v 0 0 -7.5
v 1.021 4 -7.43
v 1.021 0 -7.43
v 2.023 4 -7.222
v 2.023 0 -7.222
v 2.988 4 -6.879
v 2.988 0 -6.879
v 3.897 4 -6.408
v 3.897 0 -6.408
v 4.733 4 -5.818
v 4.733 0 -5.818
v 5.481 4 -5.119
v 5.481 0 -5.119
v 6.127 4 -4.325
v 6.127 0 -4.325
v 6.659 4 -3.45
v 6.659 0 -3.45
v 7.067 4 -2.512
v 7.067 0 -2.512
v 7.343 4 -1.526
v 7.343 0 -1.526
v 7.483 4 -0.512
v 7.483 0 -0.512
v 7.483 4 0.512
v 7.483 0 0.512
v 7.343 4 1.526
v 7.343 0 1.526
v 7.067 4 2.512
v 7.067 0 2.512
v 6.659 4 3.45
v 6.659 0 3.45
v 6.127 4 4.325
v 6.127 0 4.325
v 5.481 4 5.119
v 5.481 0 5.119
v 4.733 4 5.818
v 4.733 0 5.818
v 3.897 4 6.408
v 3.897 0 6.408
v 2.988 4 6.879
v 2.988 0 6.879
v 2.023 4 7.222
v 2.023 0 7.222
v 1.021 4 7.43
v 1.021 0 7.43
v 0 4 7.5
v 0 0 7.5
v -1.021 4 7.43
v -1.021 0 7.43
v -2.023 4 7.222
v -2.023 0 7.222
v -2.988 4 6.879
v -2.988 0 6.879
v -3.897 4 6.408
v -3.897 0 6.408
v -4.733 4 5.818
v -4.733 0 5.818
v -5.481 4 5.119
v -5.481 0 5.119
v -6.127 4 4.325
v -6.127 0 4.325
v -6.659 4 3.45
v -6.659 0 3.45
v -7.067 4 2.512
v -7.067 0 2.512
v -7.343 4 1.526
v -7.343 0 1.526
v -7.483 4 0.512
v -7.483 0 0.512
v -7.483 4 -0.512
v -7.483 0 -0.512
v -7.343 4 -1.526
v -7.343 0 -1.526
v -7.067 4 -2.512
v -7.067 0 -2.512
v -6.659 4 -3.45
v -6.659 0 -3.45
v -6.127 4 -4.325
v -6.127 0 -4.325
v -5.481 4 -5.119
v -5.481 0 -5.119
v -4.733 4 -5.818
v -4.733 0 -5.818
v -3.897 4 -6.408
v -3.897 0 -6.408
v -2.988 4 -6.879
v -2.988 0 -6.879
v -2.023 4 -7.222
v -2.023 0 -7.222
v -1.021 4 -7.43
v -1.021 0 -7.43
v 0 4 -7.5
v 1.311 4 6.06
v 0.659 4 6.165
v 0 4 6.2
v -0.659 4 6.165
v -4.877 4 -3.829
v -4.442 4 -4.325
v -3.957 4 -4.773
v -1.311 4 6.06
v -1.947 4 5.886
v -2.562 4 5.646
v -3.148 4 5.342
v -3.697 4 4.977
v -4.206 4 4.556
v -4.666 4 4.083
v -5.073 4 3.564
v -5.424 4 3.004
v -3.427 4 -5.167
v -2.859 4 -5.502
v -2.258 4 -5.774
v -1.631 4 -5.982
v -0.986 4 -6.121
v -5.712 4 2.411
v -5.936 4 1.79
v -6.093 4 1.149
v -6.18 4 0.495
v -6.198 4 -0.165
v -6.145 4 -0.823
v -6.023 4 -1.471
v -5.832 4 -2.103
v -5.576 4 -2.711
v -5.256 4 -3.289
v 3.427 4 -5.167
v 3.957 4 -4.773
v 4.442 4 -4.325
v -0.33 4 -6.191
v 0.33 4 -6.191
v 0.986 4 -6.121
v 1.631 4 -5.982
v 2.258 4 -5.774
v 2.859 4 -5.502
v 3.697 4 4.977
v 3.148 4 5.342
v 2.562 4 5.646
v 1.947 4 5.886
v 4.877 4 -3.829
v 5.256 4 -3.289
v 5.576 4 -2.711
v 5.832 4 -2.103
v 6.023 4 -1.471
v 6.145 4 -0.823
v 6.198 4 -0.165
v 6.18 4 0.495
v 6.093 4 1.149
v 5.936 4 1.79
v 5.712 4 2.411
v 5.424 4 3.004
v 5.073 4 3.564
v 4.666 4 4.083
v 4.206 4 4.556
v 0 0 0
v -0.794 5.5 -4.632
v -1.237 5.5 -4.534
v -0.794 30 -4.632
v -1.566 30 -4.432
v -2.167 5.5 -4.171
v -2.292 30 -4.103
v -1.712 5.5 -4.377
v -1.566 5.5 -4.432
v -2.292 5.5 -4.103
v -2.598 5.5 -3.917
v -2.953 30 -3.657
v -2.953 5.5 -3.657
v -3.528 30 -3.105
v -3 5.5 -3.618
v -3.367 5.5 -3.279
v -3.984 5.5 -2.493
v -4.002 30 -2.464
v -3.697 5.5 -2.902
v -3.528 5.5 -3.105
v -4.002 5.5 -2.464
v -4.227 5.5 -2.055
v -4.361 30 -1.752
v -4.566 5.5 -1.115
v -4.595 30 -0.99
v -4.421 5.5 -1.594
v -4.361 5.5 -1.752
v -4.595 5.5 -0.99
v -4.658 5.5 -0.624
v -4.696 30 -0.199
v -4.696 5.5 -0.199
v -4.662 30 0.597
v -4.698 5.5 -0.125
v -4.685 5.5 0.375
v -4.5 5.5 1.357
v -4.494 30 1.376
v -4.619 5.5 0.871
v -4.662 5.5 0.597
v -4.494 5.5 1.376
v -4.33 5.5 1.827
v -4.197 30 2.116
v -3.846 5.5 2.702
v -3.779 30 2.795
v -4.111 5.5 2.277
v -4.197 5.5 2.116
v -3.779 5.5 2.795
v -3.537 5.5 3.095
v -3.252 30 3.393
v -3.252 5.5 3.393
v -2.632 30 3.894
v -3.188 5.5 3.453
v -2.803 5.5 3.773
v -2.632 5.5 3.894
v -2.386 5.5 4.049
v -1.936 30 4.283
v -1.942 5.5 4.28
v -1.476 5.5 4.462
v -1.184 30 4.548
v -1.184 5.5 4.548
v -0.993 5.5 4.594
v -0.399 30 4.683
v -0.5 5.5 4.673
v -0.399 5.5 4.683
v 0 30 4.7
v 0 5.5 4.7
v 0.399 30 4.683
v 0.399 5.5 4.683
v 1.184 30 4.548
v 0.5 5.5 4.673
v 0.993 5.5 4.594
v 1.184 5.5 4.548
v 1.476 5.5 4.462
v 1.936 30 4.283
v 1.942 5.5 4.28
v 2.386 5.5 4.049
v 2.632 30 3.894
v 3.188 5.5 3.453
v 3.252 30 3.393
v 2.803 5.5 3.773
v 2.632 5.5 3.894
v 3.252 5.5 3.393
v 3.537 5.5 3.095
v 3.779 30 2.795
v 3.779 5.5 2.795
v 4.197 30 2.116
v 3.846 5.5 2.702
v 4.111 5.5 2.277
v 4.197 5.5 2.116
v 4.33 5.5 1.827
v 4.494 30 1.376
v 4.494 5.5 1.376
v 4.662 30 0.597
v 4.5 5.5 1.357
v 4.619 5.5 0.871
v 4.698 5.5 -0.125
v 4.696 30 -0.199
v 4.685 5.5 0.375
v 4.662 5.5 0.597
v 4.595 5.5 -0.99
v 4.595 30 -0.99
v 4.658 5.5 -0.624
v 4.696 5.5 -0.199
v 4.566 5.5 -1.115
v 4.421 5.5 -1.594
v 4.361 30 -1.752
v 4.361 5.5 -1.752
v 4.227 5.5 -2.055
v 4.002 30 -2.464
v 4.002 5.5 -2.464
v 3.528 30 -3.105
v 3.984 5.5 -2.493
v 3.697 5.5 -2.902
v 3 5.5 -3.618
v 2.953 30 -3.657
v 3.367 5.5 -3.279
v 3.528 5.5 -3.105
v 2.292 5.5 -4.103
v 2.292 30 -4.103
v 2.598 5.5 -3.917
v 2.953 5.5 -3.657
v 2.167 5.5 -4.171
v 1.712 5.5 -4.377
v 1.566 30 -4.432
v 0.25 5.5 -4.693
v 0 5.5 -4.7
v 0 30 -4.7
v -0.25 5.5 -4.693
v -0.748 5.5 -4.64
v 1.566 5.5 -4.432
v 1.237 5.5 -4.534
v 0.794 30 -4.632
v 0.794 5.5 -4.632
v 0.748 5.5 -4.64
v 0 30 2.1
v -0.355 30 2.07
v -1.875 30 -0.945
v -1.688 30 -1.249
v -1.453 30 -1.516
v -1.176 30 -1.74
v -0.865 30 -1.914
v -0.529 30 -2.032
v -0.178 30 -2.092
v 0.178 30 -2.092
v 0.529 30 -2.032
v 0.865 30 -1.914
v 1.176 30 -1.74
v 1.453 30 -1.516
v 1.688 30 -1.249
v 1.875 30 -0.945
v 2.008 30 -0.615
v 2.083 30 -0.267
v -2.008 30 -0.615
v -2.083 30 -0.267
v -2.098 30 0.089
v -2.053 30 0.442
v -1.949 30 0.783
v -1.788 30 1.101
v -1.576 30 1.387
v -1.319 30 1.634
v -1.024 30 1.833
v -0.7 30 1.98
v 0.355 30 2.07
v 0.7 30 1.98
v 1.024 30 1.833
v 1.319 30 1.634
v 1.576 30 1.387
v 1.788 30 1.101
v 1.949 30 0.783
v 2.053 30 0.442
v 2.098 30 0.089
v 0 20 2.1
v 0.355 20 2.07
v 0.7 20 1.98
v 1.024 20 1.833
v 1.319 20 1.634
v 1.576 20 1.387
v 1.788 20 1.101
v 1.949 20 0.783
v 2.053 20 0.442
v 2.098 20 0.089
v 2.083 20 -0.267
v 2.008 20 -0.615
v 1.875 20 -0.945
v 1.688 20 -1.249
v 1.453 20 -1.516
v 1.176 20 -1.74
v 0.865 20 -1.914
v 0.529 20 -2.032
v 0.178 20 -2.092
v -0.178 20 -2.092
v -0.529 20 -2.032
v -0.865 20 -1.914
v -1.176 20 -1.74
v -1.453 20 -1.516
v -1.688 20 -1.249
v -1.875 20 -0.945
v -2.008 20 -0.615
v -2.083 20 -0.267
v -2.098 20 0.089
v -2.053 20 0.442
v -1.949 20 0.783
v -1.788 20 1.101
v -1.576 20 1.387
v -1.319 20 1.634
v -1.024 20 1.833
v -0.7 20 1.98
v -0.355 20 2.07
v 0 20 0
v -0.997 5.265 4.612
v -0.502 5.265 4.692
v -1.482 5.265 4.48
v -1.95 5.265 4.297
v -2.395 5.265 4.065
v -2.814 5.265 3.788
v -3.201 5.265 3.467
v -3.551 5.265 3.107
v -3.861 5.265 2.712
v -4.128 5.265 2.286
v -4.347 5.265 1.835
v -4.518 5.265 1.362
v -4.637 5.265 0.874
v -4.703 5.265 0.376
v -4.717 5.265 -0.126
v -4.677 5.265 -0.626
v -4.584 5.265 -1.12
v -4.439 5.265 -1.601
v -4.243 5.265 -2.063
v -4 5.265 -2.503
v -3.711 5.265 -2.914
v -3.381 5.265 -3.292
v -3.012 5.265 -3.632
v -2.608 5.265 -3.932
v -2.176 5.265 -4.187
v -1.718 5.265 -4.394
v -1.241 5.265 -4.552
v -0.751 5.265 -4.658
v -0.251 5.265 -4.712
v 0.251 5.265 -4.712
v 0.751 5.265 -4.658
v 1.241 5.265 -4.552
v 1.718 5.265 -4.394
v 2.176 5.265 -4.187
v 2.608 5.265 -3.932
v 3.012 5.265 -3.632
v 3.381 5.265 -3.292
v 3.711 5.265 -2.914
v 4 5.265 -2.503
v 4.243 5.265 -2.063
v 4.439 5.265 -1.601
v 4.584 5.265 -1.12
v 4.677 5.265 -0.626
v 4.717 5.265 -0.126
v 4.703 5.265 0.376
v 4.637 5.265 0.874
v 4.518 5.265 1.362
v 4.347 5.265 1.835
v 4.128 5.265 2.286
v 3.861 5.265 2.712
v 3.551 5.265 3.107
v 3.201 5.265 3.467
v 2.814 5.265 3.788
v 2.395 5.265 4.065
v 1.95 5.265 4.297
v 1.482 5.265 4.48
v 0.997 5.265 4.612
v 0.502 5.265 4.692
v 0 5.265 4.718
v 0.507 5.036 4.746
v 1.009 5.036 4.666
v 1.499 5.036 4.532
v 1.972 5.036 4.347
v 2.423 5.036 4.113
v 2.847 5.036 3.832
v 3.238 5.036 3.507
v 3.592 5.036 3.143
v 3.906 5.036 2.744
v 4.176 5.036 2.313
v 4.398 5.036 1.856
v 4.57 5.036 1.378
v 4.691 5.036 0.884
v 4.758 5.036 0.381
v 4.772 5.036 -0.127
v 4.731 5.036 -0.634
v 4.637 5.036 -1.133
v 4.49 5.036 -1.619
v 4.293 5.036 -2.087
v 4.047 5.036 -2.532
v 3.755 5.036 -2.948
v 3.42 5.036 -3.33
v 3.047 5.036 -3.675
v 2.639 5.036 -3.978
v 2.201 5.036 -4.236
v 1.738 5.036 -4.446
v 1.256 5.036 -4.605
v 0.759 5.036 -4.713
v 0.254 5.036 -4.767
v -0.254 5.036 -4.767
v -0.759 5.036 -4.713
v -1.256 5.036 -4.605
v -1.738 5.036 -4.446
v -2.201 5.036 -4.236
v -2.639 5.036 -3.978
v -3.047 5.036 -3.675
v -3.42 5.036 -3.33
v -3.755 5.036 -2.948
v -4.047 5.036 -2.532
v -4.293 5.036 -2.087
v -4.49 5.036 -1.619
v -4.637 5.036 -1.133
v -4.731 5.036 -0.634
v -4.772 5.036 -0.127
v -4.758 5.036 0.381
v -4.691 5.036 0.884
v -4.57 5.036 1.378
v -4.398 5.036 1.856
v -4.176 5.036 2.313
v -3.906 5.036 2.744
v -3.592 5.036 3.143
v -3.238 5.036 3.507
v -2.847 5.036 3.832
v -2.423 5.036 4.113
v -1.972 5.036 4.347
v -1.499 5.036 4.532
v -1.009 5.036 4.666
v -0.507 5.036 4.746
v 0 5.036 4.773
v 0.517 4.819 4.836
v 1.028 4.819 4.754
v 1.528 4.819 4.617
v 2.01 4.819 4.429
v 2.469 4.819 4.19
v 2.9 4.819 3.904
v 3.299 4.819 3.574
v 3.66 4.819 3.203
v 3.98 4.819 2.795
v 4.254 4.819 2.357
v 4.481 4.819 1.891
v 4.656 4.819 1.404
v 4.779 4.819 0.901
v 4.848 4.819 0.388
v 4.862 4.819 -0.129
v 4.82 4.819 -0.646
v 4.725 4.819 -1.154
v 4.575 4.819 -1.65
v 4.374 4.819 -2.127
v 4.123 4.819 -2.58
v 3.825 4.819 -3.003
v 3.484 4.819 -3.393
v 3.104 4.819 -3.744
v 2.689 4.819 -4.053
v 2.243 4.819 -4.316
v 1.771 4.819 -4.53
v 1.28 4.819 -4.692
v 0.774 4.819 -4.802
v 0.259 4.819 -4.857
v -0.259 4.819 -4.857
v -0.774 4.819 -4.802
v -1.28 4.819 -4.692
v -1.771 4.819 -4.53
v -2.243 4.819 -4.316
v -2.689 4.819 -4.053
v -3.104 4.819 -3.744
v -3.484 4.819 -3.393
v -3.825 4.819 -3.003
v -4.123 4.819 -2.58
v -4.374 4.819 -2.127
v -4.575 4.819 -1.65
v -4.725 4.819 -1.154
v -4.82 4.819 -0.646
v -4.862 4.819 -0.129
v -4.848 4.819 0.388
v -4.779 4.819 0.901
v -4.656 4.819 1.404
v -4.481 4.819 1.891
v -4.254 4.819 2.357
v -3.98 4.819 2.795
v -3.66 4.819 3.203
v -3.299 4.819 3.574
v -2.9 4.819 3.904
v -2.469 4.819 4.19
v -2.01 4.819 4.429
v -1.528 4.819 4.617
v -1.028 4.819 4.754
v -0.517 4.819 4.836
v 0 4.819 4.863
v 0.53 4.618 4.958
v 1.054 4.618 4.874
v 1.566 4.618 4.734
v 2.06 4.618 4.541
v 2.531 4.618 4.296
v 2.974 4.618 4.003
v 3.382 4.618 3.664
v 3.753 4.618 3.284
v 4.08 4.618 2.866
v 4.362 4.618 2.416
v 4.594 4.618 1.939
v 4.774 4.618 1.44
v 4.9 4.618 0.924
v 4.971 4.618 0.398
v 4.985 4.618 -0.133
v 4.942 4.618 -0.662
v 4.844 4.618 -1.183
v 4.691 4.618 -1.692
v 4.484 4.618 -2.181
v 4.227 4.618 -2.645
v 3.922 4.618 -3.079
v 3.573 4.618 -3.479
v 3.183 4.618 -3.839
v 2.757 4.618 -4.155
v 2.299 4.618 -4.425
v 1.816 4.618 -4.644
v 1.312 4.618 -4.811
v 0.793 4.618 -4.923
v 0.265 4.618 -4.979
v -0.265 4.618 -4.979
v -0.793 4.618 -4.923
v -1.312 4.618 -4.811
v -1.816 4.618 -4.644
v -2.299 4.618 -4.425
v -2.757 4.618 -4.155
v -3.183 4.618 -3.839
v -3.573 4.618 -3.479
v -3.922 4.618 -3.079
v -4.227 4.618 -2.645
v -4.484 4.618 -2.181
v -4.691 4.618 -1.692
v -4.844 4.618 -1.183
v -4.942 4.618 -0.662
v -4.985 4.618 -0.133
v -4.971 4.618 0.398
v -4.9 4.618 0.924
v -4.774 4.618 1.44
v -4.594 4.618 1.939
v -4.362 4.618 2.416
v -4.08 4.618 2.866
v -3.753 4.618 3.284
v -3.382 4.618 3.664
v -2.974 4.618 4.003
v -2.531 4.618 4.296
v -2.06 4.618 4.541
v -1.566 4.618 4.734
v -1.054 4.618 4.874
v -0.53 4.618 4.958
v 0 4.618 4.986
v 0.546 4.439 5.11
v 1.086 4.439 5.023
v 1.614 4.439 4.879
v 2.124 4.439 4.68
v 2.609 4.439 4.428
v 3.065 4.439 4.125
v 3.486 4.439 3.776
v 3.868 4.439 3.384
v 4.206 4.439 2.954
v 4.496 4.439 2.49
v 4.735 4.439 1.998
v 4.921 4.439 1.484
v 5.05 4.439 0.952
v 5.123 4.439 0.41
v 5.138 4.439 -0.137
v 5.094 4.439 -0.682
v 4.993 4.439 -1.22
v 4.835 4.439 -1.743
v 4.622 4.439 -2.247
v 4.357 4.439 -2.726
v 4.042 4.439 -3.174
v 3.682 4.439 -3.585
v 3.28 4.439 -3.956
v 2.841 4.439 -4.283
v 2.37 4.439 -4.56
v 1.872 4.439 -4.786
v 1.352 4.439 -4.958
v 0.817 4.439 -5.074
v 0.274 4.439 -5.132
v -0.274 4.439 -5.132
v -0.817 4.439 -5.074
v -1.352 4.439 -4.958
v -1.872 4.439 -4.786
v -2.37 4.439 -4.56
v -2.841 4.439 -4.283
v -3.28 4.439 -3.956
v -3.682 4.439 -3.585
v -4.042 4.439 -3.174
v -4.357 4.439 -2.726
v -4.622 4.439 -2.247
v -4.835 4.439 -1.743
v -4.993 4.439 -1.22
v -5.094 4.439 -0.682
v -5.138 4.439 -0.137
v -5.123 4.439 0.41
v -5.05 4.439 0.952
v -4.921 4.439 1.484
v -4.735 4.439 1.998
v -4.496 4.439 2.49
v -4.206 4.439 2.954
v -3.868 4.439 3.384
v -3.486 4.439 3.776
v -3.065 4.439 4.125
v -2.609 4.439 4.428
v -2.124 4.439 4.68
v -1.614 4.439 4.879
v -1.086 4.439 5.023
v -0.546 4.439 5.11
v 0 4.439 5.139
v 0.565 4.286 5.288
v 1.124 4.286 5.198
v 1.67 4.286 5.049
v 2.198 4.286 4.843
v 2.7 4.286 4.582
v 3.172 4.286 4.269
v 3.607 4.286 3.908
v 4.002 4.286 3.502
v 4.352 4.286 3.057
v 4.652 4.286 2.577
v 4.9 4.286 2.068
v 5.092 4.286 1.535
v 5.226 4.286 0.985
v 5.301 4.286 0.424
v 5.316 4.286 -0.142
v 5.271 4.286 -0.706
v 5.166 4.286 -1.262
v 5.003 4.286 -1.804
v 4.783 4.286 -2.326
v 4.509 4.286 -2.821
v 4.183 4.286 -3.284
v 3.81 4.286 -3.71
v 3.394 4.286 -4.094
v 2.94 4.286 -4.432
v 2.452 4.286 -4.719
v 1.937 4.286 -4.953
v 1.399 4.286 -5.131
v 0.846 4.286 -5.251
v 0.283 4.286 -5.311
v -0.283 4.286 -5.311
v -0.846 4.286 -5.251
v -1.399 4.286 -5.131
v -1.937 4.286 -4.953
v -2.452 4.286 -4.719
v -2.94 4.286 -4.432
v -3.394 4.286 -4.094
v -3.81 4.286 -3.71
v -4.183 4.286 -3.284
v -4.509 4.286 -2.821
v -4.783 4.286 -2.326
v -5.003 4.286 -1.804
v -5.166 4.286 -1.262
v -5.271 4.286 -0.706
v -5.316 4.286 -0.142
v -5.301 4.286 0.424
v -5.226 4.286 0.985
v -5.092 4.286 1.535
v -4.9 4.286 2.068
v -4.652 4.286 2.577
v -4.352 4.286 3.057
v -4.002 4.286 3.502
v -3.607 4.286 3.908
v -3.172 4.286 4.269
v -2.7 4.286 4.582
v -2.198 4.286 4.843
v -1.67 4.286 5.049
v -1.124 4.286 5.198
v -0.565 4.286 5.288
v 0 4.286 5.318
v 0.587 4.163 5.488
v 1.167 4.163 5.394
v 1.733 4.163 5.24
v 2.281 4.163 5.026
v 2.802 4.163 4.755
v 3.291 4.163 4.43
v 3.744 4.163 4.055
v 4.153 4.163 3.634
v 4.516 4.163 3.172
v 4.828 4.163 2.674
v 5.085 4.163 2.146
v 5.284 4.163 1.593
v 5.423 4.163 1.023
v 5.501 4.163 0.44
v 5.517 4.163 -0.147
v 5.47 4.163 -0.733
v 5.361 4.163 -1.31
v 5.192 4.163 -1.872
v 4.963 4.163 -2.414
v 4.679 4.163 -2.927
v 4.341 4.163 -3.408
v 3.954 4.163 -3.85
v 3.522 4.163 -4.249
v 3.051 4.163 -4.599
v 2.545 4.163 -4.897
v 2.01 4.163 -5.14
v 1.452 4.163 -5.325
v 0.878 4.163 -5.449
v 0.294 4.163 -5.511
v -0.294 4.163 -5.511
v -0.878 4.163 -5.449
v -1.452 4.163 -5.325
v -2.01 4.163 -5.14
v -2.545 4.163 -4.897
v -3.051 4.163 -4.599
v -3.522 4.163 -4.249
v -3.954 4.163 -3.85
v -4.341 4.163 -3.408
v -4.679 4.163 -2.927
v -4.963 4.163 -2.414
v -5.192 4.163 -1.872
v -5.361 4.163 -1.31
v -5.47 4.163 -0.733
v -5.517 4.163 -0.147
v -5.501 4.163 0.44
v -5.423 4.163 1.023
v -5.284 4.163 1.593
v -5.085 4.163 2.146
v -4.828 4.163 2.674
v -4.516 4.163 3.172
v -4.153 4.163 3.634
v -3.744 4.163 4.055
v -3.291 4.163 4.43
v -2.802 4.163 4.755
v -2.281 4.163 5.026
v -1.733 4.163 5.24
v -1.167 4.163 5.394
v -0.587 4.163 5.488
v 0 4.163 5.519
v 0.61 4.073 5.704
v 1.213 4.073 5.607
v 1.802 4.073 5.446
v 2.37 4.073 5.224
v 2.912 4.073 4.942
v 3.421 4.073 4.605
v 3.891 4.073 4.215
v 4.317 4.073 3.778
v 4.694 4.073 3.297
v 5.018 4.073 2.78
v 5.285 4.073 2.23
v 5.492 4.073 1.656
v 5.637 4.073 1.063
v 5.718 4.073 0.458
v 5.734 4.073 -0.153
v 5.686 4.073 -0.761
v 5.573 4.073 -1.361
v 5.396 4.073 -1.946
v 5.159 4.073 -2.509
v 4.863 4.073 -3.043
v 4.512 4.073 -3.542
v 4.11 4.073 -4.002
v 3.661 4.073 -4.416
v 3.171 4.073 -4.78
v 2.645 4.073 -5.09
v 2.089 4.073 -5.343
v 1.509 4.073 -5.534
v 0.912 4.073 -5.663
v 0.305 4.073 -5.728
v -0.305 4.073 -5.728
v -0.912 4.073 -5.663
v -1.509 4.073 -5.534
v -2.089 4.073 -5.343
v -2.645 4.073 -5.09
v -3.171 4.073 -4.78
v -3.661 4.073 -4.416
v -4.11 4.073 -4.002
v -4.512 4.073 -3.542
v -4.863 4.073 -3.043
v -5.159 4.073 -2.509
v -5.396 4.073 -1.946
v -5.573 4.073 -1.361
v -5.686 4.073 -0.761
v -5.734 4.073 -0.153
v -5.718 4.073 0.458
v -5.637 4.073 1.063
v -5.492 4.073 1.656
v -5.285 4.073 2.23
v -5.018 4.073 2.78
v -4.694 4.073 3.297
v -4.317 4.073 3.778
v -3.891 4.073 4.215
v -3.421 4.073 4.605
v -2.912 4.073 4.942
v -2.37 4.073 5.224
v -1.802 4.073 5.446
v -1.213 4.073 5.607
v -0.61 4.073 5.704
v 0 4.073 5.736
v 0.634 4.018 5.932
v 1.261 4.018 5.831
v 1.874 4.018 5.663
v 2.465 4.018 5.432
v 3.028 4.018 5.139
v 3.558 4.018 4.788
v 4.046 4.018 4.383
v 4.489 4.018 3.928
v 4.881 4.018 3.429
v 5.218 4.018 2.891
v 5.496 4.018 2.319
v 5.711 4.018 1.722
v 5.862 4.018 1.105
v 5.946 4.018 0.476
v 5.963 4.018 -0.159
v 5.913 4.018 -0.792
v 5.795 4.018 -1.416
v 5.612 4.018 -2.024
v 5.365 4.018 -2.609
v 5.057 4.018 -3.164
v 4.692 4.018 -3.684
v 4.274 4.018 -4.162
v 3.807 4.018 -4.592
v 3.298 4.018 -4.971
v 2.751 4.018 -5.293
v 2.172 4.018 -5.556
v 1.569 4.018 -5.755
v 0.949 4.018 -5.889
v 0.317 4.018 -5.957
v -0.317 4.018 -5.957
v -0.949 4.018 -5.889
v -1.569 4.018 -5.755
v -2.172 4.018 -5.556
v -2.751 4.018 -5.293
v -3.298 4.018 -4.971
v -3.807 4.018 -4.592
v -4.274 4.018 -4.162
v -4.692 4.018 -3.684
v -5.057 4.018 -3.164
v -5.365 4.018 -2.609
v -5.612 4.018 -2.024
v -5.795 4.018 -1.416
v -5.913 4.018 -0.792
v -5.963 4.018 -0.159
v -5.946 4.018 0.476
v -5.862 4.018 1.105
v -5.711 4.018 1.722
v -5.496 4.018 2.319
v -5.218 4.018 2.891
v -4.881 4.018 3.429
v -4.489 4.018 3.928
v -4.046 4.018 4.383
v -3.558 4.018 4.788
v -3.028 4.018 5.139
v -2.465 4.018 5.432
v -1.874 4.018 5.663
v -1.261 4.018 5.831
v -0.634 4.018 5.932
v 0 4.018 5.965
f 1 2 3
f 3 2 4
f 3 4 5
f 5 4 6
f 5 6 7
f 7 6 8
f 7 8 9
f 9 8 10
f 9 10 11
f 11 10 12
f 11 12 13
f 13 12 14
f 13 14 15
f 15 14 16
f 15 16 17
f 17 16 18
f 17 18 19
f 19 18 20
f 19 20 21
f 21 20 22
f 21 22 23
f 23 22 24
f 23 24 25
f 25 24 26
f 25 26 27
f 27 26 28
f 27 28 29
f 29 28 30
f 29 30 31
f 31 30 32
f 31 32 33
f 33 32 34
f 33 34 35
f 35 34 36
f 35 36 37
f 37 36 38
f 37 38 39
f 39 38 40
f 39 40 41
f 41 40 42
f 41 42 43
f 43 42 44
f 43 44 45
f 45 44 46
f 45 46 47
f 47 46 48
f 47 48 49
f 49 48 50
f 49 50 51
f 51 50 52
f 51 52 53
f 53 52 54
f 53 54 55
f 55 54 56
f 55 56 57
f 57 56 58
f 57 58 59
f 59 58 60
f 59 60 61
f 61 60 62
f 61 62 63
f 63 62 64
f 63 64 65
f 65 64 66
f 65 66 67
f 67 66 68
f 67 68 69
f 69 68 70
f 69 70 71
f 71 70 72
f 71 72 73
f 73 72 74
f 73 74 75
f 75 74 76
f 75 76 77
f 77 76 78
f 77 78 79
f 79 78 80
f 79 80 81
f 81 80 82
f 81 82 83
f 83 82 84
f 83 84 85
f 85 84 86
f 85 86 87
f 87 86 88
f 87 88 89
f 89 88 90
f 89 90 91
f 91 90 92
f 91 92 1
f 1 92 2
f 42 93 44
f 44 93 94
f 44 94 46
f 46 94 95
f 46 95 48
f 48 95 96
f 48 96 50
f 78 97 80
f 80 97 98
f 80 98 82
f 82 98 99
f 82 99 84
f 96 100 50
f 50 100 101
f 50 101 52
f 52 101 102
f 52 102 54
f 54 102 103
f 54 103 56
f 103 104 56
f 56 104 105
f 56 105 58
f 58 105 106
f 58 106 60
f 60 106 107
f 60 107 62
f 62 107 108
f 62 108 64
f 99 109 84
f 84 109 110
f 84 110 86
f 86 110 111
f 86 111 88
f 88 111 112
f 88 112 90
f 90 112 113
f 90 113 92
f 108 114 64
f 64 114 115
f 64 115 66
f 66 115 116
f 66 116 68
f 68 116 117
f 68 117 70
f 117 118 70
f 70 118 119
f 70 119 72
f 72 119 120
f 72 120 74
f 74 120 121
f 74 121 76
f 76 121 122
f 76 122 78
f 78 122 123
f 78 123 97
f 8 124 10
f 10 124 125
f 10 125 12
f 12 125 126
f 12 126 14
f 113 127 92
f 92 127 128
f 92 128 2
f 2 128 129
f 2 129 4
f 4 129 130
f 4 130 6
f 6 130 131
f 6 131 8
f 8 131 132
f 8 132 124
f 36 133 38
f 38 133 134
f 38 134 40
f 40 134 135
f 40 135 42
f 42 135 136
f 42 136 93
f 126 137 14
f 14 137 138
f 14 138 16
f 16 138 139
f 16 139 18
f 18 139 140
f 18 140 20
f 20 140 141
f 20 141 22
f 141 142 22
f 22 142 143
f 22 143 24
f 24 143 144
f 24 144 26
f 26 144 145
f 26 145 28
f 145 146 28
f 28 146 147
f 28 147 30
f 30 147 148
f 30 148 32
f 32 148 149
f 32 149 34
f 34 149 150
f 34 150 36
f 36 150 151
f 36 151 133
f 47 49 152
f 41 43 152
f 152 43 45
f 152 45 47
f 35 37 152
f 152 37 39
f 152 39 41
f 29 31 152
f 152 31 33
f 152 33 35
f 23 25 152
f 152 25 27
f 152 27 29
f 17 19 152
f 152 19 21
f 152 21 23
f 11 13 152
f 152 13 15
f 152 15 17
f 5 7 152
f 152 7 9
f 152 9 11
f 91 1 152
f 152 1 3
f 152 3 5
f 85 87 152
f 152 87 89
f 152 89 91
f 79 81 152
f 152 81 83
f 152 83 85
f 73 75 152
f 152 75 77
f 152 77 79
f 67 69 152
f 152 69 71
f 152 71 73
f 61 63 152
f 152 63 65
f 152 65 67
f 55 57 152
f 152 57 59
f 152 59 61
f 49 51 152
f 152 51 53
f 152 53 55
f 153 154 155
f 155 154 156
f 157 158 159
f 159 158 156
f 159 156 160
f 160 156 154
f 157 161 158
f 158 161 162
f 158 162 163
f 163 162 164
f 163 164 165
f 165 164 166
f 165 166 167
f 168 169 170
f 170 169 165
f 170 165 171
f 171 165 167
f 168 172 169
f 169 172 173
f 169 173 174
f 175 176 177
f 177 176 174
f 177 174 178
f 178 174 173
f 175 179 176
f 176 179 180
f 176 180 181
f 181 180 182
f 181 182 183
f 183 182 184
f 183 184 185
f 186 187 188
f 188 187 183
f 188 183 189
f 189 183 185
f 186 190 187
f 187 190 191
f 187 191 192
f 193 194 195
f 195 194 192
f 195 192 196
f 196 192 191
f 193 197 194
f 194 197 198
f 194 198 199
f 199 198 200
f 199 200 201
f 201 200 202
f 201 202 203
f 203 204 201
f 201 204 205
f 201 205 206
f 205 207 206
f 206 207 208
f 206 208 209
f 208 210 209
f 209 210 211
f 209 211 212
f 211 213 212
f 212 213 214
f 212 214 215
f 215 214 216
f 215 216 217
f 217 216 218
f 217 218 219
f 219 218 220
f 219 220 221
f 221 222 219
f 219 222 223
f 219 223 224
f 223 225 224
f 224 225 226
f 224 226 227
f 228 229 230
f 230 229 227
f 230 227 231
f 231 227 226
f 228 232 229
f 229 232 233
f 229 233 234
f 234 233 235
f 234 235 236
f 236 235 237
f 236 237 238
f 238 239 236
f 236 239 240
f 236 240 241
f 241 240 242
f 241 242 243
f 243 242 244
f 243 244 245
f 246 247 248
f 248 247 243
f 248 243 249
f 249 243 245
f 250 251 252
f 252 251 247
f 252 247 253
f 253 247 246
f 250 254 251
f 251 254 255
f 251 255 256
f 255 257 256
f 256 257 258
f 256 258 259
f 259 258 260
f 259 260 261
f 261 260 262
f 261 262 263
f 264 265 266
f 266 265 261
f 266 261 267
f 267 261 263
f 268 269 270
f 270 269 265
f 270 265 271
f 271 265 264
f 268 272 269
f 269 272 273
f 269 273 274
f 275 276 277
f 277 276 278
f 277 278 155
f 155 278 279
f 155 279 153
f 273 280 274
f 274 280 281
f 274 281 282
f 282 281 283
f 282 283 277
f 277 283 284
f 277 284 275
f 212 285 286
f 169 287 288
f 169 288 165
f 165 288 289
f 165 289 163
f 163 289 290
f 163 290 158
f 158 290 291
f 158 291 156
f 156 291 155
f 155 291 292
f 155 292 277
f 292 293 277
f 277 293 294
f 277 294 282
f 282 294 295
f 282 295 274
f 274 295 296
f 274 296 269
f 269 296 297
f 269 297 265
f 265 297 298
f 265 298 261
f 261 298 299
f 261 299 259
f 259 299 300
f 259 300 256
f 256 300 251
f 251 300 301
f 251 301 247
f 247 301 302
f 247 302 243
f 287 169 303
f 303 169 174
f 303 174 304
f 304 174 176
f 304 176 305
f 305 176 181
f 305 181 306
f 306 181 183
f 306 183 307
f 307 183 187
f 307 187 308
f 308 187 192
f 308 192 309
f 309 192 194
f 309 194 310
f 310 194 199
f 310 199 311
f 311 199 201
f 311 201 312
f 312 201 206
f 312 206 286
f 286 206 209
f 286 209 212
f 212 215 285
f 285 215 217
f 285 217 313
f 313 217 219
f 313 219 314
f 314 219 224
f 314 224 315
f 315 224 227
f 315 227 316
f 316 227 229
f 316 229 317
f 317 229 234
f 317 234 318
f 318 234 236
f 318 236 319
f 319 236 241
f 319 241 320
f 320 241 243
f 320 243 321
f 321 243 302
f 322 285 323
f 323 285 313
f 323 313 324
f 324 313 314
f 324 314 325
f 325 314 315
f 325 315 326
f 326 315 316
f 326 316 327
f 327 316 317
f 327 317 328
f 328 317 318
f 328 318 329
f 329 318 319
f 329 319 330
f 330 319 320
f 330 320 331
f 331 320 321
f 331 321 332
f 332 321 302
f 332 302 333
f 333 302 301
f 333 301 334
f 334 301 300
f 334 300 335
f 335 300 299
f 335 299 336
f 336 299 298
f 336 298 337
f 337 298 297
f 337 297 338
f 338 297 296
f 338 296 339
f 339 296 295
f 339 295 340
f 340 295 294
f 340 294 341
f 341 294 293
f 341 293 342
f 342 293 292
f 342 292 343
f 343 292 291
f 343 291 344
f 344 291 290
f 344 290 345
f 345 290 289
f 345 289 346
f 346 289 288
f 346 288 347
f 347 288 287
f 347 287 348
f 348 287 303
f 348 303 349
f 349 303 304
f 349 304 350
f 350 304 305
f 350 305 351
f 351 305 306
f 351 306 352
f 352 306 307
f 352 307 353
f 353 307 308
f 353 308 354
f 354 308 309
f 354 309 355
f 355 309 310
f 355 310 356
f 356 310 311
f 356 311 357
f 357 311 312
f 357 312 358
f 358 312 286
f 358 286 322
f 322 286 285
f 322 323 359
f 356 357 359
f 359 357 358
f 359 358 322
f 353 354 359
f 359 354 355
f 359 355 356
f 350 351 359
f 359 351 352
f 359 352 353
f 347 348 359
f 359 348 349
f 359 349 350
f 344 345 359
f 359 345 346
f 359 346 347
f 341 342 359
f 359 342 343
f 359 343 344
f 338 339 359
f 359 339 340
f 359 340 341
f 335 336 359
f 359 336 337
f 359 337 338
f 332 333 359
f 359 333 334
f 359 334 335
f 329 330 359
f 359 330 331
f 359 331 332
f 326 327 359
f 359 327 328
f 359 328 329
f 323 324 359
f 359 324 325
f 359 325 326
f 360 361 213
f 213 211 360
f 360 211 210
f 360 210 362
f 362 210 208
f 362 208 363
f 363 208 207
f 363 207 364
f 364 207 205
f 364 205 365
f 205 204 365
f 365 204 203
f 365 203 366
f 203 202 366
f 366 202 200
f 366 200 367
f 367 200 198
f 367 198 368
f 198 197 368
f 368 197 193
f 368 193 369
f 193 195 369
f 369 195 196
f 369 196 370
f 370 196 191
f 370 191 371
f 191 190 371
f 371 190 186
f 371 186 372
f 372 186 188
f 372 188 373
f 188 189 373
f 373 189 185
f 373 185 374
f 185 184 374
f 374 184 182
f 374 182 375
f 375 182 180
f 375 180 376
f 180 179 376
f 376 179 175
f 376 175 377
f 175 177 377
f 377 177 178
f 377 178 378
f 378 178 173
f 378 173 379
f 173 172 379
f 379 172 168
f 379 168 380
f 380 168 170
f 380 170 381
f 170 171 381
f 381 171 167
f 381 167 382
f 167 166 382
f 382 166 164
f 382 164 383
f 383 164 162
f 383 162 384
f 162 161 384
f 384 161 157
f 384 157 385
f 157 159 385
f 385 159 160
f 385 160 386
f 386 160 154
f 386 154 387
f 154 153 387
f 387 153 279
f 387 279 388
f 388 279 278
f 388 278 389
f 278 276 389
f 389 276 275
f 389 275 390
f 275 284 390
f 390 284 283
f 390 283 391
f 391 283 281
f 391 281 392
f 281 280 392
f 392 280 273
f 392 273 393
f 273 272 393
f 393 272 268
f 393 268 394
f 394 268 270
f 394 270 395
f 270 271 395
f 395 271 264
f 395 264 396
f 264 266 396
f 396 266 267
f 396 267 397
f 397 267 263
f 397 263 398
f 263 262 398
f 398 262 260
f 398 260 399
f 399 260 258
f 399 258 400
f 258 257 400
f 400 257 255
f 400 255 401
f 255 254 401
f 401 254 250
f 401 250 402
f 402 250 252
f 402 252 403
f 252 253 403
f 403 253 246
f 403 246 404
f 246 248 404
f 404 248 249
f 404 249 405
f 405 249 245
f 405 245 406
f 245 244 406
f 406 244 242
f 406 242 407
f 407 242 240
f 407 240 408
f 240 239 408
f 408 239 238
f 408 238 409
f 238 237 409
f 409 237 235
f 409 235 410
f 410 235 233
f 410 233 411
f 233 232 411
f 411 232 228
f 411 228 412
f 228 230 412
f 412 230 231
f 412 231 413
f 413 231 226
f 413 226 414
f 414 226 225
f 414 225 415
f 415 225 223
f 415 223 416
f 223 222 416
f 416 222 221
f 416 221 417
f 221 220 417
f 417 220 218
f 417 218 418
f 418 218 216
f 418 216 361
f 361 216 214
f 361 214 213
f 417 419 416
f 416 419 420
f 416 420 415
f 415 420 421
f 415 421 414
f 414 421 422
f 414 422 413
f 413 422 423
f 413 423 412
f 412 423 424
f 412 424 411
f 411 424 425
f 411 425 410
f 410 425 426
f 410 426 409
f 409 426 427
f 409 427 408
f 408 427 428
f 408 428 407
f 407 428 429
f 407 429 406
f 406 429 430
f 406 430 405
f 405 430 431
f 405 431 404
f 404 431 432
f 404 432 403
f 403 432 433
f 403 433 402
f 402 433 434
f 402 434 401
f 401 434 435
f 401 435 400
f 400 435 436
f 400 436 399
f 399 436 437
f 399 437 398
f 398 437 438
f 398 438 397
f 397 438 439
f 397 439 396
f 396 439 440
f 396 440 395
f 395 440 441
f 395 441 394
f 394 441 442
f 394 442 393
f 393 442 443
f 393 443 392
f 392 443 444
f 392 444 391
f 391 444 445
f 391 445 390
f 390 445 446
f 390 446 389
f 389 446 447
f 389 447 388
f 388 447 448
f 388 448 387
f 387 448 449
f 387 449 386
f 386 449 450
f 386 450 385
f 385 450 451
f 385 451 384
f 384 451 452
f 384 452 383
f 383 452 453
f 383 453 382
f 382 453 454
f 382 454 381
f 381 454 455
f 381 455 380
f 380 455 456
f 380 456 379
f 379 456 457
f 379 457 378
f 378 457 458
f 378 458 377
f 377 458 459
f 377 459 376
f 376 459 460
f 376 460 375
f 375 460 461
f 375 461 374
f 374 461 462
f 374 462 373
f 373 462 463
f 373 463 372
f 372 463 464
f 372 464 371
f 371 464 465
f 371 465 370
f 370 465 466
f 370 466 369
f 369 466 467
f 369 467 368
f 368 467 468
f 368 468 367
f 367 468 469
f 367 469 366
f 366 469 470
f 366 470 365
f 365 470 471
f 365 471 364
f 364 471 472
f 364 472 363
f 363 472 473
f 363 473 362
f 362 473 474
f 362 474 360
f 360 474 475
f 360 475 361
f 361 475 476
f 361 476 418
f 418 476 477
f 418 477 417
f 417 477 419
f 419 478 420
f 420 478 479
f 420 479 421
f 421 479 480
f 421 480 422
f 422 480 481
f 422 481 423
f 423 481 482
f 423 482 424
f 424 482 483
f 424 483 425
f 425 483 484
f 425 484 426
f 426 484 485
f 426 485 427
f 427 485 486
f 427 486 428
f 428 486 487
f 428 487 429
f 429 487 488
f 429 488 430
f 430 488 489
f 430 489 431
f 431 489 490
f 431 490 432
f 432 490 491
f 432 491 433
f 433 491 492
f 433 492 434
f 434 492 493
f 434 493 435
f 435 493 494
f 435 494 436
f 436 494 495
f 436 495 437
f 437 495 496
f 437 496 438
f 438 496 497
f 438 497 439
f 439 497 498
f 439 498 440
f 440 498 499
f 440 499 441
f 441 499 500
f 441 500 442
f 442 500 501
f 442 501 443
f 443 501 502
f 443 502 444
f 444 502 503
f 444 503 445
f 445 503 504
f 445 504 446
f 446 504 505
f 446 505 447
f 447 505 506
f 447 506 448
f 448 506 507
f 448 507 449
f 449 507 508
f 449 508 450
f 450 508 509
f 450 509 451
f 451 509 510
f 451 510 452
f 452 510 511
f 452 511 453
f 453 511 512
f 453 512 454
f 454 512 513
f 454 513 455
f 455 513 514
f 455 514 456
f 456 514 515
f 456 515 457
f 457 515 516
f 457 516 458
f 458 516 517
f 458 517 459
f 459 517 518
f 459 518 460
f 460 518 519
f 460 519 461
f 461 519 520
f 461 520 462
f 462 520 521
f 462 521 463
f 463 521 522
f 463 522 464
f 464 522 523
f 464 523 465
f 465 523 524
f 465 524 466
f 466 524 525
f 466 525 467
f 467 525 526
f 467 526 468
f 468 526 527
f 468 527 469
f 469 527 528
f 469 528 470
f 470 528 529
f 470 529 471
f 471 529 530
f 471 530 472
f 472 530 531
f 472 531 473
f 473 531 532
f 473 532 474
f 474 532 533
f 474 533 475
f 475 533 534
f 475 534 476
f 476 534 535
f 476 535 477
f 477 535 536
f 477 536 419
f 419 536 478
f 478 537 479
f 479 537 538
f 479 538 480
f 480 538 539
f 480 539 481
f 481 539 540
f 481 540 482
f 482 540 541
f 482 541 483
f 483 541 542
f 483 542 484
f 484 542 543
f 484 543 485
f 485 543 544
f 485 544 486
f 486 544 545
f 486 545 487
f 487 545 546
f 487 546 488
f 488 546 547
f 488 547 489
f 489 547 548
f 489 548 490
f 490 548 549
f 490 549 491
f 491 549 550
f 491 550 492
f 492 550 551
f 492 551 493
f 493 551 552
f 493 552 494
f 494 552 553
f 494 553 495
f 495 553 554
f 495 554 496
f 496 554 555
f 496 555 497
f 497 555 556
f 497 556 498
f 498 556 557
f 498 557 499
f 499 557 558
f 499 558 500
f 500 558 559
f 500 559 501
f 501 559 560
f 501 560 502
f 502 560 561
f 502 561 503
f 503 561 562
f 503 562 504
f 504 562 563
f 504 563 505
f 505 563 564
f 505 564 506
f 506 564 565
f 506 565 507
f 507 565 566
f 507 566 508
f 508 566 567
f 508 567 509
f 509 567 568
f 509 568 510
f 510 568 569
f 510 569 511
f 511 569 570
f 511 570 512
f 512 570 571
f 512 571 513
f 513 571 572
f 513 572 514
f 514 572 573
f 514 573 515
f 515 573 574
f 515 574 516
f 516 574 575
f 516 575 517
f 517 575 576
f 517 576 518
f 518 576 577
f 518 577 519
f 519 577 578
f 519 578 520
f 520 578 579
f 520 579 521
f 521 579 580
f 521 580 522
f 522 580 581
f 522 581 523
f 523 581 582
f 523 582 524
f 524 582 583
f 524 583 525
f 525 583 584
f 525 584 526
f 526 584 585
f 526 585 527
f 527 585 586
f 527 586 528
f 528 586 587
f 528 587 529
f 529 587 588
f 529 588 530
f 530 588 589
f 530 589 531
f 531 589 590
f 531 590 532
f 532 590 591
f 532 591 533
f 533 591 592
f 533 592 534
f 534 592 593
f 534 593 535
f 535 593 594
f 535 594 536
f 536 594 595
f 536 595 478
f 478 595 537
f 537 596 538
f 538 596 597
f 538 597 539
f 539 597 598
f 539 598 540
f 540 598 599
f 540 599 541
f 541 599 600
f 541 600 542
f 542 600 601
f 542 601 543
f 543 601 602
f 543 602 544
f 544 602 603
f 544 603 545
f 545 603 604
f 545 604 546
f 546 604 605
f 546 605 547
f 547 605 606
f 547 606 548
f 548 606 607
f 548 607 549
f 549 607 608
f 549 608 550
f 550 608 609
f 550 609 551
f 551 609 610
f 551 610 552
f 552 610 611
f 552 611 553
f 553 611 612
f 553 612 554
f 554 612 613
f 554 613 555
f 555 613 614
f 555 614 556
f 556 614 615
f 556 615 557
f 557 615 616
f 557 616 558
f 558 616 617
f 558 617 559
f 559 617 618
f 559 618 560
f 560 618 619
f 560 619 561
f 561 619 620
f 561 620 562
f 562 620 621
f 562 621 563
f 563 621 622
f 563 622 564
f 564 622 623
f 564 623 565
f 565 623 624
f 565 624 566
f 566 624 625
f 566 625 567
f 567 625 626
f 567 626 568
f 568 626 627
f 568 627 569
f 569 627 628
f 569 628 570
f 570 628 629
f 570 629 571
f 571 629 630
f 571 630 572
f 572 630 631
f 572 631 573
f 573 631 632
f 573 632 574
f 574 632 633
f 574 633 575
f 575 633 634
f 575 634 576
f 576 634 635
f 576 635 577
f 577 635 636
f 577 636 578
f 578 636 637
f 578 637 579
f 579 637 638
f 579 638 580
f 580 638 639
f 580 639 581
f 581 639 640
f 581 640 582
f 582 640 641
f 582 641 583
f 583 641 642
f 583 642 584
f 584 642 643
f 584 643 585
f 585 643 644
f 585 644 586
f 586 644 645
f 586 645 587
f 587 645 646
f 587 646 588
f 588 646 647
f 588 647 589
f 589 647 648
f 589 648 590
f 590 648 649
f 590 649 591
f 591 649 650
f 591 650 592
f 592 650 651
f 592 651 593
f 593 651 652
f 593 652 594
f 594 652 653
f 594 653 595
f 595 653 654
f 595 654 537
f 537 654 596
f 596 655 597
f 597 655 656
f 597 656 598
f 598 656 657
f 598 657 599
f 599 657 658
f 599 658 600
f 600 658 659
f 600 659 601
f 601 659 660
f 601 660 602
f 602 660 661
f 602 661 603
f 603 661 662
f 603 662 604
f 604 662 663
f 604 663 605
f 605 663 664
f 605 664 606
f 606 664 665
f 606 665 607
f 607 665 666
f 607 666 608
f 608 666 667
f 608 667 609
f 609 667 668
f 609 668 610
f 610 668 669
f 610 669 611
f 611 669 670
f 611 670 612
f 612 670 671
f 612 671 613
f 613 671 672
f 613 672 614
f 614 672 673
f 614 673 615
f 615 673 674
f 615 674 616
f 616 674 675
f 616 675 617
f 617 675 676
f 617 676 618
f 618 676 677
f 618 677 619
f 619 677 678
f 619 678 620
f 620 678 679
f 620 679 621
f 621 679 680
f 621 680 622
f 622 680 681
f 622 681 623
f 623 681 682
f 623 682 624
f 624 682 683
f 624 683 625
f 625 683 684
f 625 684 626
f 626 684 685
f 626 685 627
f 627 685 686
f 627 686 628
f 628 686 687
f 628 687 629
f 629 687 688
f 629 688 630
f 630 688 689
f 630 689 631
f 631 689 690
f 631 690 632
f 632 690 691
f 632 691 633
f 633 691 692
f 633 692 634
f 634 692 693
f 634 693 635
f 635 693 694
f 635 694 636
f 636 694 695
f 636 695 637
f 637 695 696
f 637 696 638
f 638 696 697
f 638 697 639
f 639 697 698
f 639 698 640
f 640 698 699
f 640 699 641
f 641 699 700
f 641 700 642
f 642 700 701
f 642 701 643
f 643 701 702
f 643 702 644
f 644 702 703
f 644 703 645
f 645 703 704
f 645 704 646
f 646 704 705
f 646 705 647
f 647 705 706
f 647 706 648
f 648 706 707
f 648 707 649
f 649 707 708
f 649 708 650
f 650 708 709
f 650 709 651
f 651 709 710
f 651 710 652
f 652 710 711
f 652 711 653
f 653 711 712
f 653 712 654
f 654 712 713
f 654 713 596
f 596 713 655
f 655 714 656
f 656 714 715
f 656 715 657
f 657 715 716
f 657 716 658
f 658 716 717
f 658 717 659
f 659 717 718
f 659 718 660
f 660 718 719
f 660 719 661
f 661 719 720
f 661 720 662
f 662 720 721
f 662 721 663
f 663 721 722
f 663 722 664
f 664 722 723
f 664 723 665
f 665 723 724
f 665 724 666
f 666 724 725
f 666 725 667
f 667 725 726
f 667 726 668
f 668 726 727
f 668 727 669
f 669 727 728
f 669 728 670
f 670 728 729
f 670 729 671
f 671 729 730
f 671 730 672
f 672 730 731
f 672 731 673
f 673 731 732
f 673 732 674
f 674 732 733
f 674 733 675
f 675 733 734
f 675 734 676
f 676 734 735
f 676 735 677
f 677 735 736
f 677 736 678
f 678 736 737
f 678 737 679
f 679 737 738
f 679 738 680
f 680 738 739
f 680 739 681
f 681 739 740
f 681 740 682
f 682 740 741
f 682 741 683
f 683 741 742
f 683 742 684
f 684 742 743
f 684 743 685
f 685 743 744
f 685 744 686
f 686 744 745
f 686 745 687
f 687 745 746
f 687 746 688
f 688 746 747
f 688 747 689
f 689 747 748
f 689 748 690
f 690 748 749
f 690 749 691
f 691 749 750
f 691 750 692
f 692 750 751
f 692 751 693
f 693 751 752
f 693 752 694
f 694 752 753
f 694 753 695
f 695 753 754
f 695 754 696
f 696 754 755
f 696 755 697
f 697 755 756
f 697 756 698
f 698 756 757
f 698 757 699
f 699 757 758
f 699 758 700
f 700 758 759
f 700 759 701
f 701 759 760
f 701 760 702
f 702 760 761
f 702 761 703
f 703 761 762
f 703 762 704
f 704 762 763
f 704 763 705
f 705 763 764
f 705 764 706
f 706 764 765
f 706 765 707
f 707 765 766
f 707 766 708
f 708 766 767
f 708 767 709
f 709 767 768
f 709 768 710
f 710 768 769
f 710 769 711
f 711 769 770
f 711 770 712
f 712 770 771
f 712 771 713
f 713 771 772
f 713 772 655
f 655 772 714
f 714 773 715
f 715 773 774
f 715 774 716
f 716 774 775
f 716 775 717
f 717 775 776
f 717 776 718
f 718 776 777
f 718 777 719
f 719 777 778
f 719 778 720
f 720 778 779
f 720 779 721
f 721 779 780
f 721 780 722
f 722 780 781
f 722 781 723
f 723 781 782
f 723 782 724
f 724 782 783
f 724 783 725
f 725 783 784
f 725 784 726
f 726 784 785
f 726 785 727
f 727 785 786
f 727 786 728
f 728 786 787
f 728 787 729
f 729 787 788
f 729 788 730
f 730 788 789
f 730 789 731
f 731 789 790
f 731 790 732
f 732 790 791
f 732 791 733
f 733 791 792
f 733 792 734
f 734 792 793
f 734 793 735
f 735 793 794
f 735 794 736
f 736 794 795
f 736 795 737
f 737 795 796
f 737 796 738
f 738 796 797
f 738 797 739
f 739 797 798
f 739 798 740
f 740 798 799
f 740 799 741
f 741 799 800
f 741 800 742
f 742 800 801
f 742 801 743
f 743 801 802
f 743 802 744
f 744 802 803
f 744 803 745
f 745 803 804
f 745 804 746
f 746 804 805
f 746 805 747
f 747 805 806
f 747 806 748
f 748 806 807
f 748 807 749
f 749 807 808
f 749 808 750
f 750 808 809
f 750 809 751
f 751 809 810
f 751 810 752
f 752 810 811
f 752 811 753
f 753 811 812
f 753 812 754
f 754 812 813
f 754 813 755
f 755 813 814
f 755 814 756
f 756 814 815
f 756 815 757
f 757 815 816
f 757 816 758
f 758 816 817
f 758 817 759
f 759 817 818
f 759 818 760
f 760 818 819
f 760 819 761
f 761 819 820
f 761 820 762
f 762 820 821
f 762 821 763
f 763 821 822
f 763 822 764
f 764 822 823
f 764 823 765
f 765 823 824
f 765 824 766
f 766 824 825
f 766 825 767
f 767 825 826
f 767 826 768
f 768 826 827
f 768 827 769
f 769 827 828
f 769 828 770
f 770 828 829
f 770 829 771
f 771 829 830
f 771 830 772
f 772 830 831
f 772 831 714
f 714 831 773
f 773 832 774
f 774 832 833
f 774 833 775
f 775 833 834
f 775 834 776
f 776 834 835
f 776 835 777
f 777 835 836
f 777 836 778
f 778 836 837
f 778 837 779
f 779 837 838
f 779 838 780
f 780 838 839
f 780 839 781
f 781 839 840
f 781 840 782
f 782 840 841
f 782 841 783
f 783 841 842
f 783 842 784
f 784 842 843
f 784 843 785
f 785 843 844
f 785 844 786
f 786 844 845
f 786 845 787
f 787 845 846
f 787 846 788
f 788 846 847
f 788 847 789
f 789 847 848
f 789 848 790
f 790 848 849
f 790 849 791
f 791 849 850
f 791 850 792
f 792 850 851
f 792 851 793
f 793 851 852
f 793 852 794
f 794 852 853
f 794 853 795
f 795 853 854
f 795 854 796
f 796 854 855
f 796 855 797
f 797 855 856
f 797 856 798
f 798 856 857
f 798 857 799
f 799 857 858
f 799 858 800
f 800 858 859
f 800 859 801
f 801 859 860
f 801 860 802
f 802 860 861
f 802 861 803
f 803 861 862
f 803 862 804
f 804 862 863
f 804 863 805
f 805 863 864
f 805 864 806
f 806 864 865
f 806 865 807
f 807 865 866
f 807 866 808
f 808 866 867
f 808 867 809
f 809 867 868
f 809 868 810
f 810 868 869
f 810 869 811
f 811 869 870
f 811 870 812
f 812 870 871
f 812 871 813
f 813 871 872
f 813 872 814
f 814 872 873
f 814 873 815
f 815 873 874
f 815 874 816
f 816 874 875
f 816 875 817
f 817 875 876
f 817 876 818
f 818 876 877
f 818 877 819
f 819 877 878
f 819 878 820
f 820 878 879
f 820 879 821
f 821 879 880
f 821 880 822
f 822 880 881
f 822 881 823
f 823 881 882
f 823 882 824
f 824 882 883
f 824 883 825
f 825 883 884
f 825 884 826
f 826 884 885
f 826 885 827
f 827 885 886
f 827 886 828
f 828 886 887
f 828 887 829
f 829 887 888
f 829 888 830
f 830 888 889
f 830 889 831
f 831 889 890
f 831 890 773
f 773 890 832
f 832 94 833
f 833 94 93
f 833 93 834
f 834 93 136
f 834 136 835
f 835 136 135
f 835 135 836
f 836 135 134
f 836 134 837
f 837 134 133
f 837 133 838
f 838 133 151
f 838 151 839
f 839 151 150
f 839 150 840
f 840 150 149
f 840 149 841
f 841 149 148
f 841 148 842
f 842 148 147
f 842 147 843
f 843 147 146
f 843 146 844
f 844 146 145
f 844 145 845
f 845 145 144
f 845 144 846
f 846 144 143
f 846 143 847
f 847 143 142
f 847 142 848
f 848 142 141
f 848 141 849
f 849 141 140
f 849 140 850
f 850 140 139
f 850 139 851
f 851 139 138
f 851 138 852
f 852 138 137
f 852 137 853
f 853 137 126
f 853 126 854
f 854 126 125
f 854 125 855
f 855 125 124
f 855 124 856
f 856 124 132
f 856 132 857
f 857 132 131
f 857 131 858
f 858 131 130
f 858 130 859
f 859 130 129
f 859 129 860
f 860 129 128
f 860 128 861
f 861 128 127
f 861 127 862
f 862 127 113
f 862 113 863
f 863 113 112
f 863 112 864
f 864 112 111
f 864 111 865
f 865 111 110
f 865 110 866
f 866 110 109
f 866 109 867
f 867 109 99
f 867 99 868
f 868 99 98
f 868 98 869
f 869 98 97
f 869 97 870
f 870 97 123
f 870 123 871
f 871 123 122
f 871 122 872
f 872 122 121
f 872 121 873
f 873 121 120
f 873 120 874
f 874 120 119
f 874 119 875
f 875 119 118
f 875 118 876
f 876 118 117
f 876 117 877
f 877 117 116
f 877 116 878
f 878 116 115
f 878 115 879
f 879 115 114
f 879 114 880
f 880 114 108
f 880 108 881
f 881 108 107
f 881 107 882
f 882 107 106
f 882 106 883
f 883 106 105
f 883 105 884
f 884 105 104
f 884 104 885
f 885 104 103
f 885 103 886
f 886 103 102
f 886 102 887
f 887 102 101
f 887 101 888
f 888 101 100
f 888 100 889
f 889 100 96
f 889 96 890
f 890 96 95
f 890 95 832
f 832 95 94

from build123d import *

# Parameters (mm, degrees)
SKETCH1_R           = 7.5
SKETCH1_R_2         = 4.7
SKETCH1_R_3         = 2.1
BOSS_EXTRUDE1_DEPTH = 4
BOSS_EXTRUDE2_START = 4
SKETCH1_3_R         = 4.7
SKETCH1_3_R_2       = 2.1
BOSS_EXTRUDE2_DEPTH = 26
CUT_EXTRUDE1_START  = 30
SKETCH1_4_R         = 2.1
CUT_EXTRUDE1_DEPTH  = 10
FILLET1_R           = 1.5


with BuildPart() as part:
    # Sketch1 → Boss-Extrude1 (new body)
    with BuildSketch(Plane(origin=(0, 0, 0), x_dir=(1, 0, 0), z_dir=(0, 1, 0))):
        with Locations(Location((0, 0, 0), (0, 0, 270))):
            Circle(SKETCH1_R)
        Circle(SKETCH1_R_2, mode=Mode.SUBTRACT)
        Circle(SKETCH1_R_2)
        Circle(SKETCH1_R_3, mode=Mode.SUBTRACT)
        Circle(SKETCH1_R_3)
    extrude(amount=BOSS_EXTRUDE1_DEPTH)

    # Sketch1<3> → Boss-Extrude2 (add)
    with BuildSketch(Plane(origin=(0, 0, 0), x_dir=(1, 0, 0), z_dir=(0, 1, 0)).offset(BOSS_EXTRUDE2_START)):
        with Locations(Location((0, 0, 0), (0, 0, 90))):
            Circle(SKETCH1_3_R)
        Circle(SKETCH1_3_R_2, mode=Mode.SUBTRACT)
        Circle(SKETCH1_3_R_2)
    extrude(amount=BOSS_EXTRUDE2_DEPTH)

    # Sketch1<4> → Cut-Extrude1 (cut)
    with BuildSketch(Plane(origin=(0, 0, 0), x_dir=(1, 0, 0), z_dir=(0, 1, 0)).offset(CUT_EXTRUDE1_START)):
        with Locations(Location((0, 0, 0), (0, 0, 270))):
            Circle(SKETCH1_4_R)
    extrude(amount=-CUT_EXTRUDE1_DEPTH, mode=Mode.SUBTRACT)

    # Fillet1
    fillet1_edges = [part.edges().sort_by_distance(p)[0] for p in [
        (0, 4, 4.7),
    ]]
    fillet(fillet1_edges, radius=FILLET1_R)


solid = part.part
